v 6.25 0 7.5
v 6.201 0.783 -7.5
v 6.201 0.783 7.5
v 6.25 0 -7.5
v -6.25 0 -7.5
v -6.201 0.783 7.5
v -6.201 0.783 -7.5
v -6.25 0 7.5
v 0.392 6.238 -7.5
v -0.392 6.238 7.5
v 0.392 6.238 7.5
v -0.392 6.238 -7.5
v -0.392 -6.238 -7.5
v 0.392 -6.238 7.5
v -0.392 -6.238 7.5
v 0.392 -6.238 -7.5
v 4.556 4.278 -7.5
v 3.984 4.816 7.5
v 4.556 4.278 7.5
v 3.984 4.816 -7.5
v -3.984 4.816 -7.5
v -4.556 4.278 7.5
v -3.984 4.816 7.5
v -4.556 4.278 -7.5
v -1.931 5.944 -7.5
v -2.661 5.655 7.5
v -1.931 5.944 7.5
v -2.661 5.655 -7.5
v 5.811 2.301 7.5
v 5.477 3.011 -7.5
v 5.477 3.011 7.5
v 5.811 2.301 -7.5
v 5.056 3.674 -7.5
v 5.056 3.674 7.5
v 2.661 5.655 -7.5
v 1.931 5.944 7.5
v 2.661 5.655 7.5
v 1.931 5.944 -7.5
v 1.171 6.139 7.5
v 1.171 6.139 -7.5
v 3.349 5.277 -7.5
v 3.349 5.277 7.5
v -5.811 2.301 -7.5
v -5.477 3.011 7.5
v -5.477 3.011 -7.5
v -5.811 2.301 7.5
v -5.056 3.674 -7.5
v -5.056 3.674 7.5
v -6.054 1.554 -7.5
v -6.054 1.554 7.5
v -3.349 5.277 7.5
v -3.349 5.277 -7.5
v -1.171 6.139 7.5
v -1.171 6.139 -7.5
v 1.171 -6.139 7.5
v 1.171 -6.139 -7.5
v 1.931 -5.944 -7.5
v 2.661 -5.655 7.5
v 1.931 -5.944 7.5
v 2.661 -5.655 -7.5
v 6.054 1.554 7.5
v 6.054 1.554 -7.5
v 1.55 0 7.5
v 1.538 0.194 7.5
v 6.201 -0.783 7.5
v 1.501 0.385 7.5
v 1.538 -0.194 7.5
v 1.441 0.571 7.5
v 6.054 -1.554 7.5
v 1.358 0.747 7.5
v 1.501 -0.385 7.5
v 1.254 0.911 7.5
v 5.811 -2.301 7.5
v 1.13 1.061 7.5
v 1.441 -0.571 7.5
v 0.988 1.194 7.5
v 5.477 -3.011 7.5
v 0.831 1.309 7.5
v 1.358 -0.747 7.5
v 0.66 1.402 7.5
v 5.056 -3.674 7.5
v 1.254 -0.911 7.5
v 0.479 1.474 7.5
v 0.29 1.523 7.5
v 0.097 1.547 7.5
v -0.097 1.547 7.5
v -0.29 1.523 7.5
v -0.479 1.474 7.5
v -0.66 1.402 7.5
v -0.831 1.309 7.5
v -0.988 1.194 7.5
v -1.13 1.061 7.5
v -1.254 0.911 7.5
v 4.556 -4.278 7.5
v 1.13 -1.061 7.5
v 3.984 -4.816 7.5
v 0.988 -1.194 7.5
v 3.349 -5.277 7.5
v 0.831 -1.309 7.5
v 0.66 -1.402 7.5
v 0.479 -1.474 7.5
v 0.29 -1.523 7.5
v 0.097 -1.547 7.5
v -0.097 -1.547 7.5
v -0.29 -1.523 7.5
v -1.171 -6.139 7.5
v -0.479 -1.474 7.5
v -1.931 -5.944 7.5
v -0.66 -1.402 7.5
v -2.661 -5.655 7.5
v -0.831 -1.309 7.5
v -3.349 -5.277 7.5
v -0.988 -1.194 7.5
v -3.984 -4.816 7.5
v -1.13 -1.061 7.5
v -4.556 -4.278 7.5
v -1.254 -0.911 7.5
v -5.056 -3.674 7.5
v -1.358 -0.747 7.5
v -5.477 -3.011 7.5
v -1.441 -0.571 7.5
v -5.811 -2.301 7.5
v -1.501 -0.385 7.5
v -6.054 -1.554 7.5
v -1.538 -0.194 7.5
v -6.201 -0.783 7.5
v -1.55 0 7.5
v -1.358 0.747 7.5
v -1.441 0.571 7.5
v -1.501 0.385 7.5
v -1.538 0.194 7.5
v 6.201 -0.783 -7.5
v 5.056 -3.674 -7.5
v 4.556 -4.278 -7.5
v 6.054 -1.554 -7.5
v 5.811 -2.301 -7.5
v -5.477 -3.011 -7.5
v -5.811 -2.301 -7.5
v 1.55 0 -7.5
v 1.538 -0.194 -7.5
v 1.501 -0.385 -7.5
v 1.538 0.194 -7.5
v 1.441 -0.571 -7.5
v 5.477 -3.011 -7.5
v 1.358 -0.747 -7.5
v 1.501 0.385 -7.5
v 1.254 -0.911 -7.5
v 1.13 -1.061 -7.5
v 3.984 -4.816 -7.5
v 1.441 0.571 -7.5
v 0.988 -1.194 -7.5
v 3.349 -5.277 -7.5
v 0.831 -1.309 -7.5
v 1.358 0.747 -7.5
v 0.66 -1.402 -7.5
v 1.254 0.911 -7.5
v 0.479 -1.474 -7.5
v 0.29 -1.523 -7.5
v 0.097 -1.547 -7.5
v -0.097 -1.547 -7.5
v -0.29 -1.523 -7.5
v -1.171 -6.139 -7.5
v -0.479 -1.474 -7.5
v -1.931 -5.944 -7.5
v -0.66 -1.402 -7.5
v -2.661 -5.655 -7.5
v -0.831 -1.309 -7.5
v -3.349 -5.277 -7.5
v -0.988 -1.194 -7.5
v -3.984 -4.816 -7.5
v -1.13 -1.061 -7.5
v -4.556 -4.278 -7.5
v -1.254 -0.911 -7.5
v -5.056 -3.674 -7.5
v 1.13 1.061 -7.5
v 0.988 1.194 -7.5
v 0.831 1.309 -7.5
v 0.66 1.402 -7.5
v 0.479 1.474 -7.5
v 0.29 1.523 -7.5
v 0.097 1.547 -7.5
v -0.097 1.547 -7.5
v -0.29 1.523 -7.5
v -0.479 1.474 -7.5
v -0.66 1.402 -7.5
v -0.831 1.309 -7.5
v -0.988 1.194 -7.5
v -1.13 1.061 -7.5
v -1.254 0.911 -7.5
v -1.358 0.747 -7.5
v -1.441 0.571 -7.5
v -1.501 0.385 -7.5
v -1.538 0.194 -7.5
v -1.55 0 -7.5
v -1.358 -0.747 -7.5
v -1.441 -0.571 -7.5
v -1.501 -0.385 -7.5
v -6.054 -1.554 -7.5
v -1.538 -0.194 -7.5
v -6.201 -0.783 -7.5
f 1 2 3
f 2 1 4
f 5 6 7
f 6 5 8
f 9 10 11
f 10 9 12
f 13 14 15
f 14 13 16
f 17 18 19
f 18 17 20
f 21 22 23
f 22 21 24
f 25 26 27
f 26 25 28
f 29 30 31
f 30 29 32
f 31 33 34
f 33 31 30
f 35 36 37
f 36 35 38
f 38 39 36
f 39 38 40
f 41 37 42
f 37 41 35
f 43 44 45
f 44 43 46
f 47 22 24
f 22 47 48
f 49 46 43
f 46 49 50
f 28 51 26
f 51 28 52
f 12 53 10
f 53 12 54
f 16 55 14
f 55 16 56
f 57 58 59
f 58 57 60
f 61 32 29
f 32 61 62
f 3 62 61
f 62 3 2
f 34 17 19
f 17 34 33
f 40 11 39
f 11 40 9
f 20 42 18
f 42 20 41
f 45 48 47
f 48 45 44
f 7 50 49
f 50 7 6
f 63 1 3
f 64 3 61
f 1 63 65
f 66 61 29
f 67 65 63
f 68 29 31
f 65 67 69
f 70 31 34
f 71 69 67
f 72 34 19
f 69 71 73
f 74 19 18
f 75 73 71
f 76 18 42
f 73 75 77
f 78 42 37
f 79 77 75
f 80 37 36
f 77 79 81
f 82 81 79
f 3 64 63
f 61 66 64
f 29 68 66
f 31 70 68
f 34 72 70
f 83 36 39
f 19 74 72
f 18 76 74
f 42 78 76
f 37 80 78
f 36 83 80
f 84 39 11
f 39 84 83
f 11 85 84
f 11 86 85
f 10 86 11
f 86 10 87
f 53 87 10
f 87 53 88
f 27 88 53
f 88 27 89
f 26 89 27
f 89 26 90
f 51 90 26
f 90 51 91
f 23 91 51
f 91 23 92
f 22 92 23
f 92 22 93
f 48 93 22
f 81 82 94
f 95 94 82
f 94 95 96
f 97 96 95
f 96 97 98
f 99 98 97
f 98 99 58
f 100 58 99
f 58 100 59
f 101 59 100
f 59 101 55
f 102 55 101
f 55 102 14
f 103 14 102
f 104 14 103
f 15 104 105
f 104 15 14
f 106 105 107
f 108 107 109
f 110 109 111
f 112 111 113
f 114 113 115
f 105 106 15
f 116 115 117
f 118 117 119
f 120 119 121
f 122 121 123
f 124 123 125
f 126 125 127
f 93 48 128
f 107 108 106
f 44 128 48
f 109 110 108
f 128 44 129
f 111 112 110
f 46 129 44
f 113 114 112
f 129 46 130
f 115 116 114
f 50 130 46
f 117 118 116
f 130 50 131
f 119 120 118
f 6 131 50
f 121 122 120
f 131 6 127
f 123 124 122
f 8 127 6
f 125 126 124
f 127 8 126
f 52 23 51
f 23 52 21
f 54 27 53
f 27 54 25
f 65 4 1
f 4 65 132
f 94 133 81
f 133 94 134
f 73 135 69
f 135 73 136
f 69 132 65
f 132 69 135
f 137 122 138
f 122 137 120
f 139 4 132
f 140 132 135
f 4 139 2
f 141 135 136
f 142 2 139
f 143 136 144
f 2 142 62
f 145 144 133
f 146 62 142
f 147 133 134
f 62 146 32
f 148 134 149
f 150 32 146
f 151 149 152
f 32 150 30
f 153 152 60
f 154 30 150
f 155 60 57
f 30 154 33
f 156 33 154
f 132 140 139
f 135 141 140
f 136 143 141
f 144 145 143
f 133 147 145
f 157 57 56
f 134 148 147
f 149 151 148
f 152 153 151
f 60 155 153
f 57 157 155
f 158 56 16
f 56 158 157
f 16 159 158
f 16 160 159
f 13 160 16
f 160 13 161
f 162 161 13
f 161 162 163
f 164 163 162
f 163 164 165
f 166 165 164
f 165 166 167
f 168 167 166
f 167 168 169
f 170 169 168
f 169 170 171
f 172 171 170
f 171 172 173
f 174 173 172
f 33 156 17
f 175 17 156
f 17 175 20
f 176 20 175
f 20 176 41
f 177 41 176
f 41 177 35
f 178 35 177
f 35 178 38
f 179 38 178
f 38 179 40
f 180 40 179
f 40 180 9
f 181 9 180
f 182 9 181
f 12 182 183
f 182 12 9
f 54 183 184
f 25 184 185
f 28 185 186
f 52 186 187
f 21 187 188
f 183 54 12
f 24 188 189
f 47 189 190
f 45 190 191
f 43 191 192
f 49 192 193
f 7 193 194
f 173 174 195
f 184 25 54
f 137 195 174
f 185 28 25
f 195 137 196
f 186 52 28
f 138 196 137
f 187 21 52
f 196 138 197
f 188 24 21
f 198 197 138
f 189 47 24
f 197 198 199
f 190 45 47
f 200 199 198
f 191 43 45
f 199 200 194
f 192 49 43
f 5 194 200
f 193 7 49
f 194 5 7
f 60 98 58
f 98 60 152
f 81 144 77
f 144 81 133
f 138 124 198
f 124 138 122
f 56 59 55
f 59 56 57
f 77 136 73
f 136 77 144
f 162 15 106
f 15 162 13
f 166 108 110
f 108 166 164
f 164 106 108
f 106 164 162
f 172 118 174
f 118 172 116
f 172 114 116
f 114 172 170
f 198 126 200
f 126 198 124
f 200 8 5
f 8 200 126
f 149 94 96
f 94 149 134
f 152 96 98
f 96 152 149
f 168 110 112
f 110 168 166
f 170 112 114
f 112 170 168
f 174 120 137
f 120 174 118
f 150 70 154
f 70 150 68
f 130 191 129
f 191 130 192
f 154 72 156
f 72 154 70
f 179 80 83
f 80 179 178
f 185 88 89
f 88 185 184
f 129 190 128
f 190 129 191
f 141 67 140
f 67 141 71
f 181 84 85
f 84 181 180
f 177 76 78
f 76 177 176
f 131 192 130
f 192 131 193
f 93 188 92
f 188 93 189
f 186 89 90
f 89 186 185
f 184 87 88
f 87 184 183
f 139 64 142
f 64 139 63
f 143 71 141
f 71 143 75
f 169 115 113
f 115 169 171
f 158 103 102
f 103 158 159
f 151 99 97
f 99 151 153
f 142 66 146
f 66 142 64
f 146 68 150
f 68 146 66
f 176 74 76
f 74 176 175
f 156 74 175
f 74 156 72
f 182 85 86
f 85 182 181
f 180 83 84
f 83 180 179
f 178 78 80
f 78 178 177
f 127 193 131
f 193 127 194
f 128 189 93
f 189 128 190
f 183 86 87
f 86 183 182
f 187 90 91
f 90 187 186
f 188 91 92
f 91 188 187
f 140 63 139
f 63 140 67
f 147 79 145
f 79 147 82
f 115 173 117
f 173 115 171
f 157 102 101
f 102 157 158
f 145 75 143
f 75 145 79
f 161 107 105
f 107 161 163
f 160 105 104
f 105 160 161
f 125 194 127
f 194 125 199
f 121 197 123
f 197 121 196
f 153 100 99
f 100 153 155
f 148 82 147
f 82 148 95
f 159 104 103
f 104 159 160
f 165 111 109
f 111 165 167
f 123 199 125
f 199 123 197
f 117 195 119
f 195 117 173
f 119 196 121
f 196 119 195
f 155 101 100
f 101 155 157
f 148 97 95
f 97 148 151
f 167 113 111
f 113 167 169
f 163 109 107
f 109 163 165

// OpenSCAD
$fn = 50;


difference() {
	union() {
		translate(v = [0, 0, -7.5000000000]) {
			cylinder(h = 15, r = 6.2500000000);
		}
	}
	union() {
		translate(v = [0, 0, -100.0000000000]) {
			cylinder(h = 200, r = 1.5500000000);
		}
	}
}
